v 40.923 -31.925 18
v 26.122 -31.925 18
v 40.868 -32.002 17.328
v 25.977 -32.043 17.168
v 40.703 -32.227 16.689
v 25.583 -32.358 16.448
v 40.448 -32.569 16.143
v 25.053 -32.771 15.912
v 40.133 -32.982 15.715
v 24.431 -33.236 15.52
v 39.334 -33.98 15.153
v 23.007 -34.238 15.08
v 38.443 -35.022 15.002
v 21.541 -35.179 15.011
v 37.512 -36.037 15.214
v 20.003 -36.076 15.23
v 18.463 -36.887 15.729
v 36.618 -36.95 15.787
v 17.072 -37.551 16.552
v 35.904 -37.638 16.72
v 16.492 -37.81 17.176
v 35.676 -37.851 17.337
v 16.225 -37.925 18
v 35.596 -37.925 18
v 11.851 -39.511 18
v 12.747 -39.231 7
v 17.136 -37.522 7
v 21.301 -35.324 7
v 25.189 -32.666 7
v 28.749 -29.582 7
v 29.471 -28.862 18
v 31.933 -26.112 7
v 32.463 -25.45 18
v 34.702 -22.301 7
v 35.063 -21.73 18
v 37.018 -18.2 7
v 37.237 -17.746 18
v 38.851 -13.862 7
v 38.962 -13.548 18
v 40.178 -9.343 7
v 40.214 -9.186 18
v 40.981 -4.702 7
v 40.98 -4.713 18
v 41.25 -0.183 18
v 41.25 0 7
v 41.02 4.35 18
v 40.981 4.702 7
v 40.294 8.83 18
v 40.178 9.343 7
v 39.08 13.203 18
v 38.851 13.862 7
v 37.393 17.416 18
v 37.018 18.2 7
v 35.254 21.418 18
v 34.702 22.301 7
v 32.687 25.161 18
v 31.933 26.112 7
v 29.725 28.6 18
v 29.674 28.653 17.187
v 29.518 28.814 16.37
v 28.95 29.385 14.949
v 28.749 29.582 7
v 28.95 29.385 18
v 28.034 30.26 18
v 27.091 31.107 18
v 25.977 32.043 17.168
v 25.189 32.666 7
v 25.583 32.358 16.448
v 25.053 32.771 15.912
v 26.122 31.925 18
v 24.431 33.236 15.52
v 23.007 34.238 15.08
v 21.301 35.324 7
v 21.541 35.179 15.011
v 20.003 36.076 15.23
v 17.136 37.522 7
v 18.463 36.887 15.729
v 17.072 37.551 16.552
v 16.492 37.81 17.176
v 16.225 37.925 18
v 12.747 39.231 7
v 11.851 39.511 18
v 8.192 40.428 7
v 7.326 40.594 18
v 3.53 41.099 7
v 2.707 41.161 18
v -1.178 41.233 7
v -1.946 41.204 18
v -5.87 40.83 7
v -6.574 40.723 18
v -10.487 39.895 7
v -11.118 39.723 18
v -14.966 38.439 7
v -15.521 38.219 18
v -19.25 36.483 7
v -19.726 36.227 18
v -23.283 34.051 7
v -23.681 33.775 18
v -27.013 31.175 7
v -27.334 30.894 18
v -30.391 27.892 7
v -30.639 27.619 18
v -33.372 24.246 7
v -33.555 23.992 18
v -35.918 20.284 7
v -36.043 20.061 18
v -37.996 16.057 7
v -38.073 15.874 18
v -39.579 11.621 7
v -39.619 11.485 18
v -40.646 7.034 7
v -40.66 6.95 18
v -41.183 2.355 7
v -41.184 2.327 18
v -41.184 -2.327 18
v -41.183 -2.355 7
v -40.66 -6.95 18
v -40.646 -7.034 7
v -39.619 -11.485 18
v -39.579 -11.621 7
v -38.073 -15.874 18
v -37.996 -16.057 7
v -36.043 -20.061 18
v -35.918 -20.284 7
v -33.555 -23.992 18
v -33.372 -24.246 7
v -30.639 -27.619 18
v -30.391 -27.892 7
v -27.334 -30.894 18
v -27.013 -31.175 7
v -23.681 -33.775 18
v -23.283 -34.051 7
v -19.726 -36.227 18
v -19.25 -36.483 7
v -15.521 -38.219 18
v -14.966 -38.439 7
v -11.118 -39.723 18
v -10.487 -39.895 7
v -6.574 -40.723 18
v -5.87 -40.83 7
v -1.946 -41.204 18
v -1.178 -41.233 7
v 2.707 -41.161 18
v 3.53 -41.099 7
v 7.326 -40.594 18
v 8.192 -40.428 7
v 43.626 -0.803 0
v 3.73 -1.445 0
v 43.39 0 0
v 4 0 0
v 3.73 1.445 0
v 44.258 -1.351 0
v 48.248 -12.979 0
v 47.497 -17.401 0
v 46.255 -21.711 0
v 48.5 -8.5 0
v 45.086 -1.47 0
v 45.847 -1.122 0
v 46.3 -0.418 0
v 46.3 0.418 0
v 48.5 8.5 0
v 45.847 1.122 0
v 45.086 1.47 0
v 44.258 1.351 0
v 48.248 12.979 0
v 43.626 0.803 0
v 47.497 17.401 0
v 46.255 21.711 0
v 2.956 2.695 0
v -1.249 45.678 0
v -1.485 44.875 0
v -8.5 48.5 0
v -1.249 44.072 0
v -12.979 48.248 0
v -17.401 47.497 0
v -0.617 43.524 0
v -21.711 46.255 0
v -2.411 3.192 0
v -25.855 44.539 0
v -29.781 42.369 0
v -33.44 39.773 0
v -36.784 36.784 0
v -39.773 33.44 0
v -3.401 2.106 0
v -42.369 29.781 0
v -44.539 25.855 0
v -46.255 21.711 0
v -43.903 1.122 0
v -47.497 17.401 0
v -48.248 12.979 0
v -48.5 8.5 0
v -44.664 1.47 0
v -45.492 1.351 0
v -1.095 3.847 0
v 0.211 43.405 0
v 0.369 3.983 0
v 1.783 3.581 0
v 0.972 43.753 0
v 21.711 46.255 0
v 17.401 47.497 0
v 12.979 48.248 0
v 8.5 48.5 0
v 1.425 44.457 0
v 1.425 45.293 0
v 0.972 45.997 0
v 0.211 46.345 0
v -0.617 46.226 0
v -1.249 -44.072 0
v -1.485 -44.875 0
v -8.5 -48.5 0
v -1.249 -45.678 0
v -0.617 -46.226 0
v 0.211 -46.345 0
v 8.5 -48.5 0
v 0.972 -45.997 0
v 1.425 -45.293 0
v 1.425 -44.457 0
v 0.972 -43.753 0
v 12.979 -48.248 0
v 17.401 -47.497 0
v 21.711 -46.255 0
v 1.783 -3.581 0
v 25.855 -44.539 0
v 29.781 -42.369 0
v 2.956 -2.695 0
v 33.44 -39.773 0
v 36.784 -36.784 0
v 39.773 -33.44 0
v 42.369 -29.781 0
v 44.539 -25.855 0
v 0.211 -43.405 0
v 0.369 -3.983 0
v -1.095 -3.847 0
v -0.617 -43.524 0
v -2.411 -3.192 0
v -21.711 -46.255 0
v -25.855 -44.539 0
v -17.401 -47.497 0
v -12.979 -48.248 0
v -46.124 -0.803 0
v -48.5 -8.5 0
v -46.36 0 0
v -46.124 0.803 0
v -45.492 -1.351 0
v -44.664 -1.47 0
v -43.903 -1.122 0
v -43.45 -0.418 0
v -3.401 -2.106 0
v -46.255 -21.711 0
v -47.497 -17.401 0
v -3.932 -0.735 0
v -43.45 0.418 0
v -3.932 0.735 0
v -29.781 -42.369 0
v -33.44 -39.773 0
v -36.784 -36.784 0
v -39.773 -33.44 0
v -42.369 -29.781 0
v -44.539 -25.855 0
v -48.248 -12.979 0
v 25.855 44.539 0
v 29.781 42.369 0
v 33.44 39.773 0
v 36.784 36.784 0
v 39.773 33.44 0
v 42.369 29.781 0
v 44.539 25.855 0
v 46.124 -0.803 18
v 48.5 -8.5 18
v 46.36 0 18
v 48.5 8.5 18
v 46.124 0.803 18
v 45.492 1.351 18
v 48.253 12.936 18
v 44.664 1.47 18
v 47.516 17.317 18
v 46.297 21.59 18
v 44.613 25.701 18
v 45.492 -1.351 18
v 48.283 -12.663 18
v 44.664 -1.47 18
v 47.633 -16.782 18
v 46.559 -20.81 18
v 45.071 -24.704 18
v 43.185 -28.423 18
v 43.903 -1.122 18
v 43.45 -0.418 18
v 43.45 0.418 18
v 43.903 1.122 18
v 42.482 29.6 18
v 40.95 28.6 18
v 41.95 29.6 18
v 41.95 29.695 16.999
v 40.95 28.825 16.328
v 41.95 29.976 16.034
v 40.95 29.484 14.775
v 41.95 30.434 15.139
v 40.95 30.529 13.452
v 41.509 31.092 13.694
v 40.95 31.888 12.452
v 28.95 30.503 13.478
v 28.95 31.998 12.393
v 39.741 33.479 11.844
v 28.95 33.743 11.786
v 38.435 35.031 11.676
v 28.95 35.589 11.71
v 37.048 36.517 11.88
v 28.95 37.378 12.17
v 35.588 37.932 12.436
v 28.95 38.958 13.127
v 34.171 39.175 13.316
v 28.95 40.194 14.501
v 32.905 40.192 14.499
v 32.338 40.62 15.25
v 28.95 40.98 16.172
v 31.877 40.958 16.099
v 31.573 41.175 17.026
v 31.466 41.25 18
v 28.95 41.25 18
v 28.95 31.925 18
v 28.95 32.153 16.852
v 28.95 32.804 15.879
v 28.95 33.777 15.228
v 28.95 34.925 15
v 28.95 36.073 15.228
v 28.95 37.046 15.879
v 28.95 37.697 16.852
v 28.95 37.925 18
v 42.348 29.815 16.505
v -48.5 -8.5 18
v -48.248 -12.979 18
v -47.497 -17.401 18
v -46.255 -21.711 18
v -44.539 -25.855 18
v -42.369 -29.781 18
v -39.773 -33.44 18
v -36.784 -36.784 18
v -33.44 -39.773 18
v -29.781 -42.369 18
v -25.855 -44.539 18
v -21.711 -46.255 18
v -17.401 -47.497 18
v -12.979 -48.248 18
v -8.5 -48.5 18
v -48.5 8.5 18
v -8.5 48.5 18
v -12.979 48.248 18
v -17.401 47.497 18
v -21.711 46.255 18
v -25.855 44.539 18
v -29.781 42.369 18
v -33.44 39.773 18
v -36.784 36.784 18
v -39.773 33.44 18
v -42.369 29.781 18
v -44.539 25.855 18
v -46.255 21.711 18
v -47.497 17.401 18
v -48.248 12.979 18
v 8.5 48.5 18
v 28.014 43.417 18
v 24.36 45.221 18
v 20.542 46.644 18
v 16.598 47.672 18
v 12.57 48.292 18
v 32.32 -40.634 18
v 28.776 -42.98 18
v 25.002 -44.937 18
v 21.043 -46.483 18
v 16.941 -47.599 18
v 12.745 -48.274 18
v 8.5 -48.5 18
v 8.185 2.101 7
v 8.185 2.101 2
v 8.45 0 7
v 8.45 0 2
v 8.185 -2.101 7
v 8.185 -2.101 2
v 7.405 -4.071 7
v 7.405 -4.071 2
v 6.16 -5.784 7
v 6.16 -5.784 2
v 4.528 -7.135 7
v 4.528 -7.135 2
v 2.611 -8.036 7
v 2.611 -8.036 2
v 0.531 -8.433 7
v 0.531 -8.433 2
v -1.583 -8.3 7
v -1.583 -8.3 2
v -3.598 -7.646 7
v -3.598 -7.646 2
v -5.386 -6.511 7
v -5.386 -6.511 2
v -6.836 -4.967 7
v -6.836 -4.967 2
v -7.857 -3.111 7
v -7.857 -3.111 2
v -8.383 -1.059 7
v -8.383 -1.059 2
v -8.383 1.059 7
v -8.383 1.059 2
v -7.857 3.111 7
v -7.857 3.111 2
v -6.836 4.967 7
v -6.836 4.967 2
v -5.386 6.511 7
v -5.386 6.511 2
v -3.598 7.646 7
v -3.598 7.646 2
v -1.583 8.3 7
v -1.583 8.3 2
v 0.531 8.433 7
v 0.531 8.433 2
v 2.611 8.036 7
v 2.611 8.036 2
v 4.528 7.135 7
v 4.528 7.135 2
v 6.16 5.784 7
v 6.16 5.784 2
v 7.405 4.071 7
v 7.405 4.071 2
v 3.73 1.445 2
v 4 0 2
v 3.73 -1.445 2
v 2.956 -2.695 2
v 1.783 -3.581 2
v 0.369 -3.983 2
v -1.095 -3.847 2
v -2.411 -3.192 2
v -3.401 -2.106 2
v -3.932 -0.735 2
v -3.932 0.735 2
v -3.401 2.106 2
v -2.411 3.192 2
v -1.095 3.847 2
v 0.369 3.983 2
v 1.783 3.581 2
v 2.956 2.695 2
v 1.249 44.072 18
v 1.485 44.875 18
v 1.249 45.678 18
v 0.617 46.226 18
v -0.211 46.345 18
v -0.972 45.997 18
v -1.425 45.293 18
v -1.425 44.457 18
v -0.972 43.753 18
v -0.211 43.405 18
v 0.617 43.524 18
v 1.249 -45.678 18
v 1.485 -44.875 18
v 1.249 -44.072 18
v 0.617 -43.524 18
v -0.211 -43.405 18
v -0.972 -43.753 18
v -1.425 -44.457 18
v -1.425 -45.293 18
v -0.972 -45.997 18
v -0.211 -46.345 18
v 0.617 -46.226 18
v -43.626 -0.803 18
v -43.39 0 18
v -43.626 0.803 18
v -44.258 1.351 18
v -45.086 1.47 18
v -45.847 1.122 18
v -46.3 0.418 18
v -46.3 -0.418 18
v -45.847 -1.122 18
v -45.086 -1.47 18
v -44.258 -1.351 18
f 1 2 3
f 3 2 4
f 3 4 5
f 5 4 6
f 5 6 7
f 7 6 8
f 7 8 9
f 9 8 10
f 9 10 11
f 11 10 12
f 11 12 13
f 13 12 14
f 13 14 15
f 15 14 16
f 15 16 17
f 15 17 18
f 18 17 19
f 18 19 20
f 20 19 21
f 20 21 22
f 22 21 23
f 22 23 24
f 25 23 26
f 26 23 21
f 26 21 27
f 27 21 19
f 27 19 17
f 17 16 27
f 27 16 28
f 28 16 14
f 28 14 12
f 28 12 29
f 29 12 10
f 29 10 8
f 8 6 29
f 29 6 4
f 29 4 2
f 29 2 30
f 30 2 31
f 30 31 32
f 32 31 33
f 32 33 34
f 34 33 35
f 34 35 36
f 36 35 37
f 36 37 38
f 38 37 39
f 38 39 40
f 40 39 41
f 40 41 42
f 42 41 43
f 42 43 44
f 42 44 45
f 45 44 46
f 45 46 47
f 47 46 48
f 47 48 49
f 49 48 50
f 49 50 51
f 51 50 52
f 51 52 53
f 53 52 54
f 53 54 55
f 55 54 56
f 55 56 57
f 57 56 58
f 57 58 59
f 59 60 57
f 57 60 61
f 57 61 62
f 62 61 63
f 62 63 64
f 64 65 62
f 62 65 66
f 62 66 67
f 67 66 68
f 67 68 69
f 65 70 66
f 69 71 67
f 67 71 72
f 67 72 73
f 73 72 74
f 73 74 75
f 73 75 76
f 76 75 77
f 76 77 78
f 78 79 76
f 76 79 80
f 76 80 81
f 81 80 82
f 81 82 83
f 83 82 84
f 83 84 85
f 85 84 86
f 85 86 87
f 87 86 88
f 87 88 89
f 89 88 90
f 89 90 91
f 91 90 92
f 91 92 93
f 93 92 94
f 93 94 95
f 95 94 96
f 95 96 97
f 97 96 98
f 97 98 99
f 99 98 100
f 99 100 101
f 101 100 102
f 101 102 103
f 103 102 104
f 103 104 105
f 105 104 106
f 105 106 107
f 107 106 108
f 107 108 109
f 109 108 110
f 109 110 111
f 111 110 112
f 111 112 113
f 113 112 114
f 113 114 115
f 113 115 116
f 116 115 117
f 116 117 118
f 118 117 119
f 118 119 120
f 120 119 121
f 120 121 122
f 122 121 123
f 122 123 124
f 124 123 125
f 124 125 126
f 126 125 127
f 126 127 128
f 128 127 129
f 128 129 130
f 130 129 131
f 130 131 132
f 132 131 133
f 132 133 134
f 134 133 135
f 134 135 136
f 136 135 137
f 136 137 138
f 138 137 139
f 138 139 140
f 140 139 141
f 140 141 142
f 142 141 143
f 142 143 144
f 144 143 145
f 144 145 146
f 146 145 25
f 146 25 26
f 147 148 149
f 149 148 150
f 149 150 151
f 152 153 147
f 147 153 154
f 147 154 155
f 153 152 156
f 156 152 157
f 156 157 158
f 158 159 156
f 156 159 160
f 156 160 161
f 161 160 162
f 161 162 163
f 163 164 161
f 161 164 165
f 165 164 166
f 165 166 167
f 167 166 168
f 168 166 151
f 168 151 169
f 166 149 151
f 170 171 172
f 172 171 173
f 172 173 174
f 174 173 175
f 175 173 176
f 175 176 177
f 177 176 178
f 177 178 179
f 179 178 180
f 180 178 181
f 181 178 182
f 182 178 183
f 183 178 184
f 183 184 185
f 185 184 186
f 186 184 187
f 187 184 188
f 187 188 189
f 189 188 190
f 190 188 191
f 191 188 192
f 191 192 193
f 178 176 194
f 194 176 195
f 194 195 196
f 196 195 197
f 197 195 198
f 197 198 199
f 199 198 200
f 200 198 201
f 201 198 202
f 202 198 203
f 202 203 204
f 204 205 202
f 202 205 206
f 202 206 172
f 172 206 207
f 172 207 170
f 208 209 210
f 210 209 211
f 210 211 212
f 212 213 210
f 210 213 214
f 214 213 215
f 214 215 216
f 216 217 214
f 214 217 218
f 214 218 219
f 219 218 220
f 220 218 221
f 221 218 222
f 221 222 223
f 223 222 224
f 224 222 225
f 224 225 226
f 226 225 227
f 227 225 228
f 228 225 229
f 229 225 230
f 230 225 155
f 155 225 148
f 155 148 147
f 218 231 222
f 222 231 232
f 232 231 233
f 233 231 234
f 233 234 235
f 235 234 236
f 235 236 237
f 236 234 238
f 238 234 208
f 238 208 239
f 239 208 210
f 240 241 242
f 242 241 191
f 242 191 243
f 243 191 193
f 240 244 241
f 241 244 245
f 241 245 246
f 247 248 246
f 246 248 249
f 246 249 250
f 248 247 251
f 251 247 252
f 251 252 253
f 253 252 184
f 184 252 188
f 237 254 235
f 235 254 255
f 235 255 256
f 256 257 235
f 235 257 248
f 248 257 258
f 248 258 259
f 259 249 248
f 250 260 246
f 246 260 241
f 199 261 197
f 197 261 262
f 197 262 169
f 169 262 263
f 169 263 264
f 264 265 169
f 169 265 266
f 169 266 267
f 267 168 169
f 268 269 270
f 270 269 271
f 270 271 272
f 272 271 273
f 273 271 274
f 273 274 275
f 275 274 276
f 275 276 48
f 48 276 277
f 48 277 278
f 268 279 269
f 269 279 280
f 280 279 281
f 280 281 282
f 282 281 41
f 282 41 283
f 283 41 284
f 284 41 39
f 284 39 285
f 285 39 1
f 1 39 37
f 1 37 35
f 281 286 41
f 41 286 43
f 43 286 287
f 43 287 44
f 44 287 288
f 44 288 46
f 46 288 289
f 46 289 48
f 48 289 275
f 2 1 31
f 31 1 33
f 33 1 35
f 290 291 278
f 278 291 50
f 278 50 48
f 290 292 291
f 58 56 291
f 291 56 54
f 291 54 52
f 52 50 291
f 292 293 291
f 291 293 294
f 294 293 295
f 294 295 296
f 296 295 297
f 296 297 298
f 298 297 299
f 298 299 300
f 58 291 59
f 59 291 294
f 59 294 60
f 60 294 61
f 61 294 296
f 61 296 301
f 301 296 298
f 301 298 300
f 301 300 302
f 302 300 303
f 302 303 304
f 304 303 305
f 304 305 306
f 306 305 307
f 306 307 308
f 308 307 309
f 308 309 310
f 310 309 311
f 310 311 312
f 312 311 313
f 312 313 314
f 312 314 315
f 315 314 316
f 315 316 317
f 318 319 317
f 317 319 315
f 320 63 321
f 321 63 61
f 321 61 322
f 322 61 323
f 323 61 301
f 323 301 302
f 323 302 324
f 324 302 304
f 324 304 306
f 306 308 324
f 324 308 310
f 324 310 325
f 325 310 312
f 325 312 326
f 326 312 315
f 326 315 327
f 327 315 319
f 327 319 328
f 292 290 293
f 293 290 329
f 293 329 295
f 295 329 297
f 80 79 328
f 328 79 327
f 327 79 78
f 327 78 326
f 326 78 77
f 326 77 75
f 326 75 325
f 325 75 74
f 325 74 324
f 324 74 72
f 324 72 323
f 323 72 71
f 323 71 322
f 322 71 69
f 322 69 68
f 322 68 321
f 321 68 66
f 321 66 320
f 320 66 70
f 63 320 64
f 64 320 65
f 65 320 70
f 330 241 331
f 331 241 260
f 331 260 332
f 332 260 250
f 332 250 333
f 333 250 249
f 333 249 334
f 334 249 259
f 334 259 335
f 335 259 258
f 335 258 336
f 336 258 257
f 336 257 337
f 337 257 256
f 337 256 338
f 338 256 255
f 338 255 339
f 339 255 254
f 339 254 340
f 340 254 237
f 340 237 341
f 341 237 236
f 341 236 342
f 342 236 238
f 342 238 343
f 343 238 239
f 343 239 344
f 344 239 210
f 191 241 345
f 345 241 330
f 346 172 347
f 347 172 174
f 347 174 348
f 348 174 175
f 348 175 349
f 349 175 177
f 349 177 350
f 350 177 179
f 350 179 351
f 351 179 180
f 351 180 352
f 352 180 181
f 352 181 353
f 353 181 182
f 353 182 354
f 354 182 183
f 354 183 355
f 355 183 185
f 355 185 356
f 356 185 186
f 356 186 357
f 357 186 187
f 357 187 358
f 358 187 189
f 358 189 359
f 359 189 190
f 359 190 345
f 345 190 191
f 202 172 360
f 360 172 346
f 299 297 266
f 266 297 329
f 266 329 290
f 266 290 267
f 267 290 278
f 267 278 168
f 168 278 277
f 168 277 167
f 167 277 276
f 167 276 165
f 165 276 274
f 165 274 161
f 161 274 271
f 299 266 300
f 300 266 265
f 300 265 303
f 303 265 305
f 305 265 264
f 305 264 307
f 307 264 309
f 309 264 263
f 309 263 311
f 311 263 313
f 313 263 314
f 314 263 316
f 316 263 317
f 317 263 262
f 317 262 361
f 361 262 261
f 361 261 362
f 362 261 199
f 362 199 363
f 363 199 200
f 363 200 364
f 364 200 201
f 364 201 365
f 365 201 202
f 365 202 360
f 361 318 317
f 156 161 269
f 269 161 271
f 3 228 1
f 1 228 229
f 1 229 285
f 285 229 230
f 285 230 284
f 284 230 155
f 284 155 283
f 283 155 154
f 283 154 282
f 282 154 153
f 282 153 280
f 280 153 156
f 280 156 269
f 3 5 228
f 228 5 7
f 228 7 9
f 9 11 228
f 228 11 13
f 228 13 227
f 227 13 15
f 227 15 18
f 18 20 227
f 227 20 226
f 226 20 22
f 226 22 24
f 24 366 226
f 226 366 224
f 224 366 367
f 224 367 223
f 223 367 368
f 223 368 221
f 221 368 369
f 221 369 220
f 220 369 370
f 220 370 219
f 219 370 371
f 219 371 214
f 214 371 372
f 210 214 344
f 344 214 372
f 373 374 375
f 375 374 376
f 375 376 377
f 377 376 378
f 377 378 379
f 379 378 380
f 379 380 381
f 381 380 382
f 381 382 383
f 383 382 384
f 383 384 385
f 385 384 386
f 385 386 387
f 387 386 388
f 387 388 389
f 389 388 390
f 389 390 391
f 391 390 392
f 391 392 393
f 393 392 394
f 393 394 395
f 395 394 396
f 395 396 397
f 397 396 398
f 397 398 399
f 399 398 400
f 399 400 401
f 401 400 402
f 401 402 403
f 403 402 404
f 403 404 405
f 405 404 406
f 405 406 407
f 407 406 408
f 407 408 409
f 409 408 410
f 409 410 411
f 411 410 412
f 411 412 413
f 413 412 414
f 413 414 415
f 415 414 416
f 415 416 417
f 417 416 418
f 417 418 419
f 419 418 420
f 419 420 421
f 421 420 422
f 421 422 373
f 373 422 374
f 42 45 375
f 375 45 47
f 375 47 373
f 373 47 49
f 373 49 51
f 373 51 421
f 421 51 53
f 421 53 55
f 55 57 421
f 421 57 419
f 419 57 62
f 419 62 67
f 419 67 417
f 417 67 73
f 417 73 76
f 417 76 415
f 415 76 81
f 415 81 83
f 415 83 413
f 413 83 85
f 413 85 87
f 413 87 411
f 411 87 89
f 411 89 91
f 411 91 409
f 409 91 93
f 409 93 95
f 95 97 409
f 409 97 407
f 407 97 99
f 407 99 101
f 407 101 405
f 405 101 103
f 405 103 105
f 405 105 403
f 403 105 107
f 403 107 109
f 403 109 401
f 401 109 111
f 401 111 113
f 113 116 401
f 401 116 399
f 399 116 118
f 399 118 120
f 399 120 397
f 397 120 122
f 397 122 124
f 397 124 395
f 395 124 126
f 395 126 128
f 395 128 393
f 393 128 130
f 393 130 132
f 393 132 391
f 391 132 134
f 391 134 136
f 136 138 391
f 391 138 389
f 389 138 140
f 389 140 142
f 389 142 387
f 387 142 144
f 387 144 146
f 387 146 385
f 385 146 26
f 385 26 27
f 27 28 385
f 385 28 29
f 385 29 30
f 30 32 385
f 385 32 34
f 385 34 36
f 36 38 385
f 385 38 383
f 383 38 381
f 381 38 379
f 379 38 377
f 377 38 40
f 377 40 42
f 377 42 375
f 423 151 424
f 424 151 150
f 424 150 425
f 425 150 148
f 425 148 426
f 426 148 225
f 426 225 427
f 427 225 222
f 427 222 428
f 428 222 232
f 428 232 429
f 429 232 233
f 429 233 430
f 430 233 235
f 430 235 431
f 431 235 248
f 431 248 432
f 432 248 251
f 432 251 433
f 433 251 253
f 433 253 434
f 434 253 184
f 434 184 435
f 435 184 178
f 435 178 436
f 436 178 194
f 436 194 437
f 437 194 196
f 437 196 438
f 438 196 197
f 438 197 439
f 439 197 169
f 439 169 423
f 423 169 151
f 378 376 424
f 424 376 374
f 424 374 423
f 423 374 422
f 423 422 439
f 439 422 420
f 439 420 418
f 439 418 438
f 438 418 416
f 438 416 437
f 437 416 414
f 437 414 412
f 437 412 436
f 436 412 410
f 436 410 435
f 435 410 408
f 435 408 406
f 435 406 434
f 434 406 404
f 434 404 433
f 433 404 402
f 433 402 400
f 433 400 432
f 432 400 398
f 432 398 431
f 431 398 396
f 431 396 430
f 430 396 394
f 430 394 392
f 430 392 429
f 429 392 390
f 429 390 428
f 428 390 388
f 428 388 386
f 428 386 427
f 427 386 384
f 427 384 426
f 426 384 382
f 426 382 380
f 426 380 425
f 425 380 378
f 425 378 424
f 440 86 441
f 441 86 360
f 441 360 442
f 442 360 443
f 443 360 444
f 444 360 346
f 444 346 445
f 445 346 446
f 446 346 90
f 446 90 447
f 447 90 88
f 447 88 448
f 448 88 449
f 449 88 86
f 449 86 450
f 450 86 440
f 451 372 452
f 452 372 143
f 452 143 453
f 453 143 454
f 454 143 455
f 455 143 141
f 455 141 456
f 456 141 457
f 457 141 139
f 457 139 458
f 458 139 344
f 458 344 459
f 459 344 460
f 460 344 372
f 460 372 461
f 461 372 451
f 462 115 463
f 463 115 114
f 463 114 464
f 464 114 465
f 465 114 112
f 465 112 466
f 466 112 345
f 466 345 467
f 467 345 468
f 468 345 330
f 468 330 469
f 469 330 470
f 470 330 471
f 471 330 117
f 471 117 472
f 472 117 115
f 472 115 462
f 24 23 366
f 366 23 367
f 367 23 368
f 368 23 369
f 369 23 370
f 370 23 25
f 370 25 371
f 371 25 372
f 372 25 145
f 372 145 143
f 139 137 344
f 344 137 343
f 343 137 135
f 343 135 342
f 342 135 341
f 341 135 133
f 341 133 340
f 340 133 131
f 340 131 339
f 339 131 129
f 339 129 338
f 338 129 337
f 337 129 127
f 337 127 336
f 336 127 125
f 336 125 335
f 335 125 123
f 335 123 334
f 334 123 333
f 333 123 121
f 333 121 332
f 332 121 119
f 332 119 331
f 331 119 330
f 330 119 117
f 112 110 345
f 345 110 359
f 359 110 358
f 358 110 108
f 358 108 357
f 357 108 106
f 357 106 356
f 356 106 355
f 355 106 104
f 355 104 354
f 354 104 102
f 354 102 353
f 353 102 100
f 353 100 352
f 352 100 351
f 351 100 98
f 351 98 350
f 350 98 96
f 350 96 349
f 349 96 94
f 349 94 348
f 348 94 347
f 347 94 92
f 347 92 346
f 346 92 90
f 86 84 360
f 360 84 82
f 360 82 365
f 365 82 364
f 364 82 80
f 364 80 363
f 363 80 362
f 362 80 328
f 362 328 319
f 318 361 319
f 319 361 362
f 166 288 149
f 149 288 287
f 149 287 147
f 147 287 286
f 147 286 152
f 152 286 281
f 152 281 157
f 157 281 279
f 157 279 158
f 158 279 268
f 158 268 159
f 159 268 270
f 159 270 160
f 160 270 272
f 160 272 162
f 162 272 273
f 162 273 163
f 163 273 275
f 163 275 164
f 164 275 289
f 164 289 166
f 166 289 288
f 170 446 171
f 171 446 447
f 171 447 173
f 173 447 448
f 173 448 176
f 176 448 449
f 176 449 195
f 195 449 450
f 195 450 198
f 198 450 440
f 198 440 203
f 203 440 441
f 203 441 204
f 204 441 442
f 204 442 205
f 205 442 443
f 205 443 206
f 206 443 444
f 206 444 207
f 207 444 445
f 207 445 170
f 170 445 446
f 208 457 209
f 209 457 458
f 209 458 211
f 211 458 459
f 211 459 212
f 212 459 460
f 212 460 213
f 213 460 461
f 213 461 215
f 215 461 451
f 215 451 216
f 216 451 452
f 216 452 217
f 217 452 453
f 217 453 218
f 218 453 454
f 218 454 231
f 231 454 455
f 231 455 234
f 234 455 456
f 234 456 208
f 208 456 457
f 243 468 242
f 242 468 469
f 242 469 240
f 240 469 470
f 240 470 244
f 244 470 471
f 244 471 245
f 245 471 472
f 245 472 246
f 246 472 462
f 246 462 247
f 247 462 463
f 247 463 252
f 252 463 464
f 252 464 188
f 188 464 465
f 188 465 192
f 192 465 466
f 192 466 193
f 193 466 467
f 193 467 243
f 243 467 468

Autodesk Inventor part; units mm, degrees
ref_plane "YZ Plane" through (0, 0, 0) normal (1, 0, 0) x (0, 1, 0)
ref_plane "XZ Plane" through (0, 0, 0) normal (0, 1, 0) x (-1, 0, 0)
ref_plane "XY Plane" through (0, 0, 0) normal (0, 0, 1) x (1, 0, 0)
sketch "Sketch1" plane through (0, 0, 0) normal (0, 0, 1) x (1, 0, 0)
  line L0 (-8.5, 48.5) -> (8.5, 48.5)
  line L1 (48.5, 8.5) -> (48.5, -8.5)
  line L2 (8.5, -48.5) -> (-8.5, -48.5)
  line L3 (-48.5, -8.5) -> (-48.5, 8.5)
  circle A0 centre (0, 0) radius 41.25
  circle A1 centre (0, 0) radius 8.45
  circle A2 centre (0, 0) radius 4
  arc A3 (48.5, 8.5) -> (8.5, 48.5) centre (8.5, 8.5) ccw
  arc A4 (8.5, -48.5) -> (48.5, -8.5) centre (8.5, -8.5) ccw
  arc A5 (-48.5, -8.5) -> (-8.5, -48.5) centre (-8.5, -8.5) ccw
  arc A6 (-8.5, 48.5) -> (-48.5, 8.5) centre (-8.5, 8.5) ccw
  point P0 (-48.5, 48.5)
  point P1 (48.5, -48.5)
  point P2 (48.5, 48.5)
  point P3 (-48.5, -48.5)
  point P4 (0, 48.5)
  point P5 (48.5, 0)
  dimension "d0" = 97
  dimension "d1" = 82.5
  dimension "d2" = 16.9
  dimension "d3" = 8
  dimension "d10" = 40
extrude "Extrusion1" add sketch "Sketch1" along normal blind 2 contours A1
extrude "Extrusion2" add sketch "Sketch1" along normal blind 7 contours A0
extrude "Extrusion3" add sketch "Sketch1" along normal blind 18 contours L0 A3 L1 A4 L2 A5 L3 A6
sketch "Sketch3" plane through (0, 0, 18) normal (0, 0, 1) x (1, 0, 0)
  circle A0 centre (0, 0) radius 41.25
  line L0 (21.9501, 34.925) -> (64.9501, 34.925)
  line L1 (41.9501, 40.25) -> (47.9501, 40.25)
  line L2 (49.9501, 42.25) -> (64.9501, 42.25)
  line L3 (40.9501, 41.25) -> (28.9501, 41.25)
  line L4 (49.9501, 42.25) -> (47.9501, 40.25)
  line L5 (40.9501, 41.25) -> (41.9501, 40.25)
  line L6 (47.9501, 40.25) -> (64.9501, 40.25) construction
  line L7 (41.9501, 40.25) -> (28.9501, 40.25) construction
  line L8 (64.9501, 42.25) -> (64.9501, 34.925)
  line L9 (28.9501, 37.925) -> (21.9501, 37.925)
  line L10 (28.9501, 37.925) -> (28.9501, 41.25)
  line L11 (21.9501, 37.925) -> (21.9501, 34.925) construction
  line L12 (21.9501, 34.925) -> (16.225193, 34.925)
  line L13 (21.9501, 37.925) -> (16.225193, 37.925)
  line L14 (16.225193, 34.925) -> (16.225193, 37.925)
  circle A1 centre (0, 0) radius 4
  line L15 (0, 0) -> (48.5, 0)
  line L16 (48.5, -8.5) -> (48.5, 8.5)
  line L17 (21.9501, -34.925) -> (64.9501, -34.925)
  line L18 (41.9501, -40.25) -> (47.9501, -40.25)
  line L19 (49.9501, -42.25) -> (64.9501, -42.25)
  line L20 (40.9501, -41.25) -> (28.9501, -41.25)
  line L21 (49.9501, -42.25) -> (47.9501, -40.25)
  line L22 (40.9501, -41.25) -> (41.9501, -40.25)
  line L23 (47.9501, -40.25) -> (64.9501, -40.25) construction
  line L24 (41.9501, -40.25) -> (28.9501, -40.25) construction
  line L25 (64.9501, -42.25) -> (64.9501, -34.925)
  line L26 (28.9501, -37.925) -> (21.9501, -37.925)
  line L27 (28.9501, -37.925) -> (28.9501, -41.25)
  line L28 (21.9501, -37.925) -> (21.9501, -34.925) construction
  line L29 (21.9501, -34.925) -> (16.225193, -34.925)
  line L30 (21.9501, -37.925) -> (16.225193, -37.925)
  line L31 (16.225193, -34.925) -> (16.225193, -37.925)
  line L32 (28.9501, -37.925) -> (64.9501, -37.925)
  point P0 (16.225193, -37.925)
  dimension "d12" = 10.65
  dimension "d13" = 14.65
  dimension "d14" = 12.65
  dimension "d15" = 45
  dimension "d16" = 45
  dimension "d17" = 15
  dimension "d18" = 6
  dimension "d19" = 12
  dimension "d21" = 7
  dimension "d22" = 6
sketch "Sketch3 outline for Revolution1" plane through (0, 0, 18) normal (0, 0, 1) x (1, 0, 0)
  line L0 (64.9501, 34.925) -> (64.9501, 42.25)
  line L1 (21.9501, 34.925) -> (64.9501, 34.925)
  arc A0 (16.225193, 37.925) -> (21.9501, 34.925) centre (0, 0) cw
  line L2 (21.9501, 37.925) -> (16.225193, 37.925)
  line L3 (28.9501, 37.925) -> (21.9501, 37.925)
  line L4 (28.9501, 41.25) -> (28.9501, 37.925)
  line L5 (40.9501, 41.25) -> (28.9501, 41.25)
  line L6 (41.9501, 40.25) -> (40.9501, 41.25)
  line L7 (47.9501, 40.25) -> (41.9501, 40.25)
  line L8 (49.9501, 42.25) -> (47.9501, 40.25)
  line L9 (64.9501, 42.25) -> (49.9501, 42.25)
revolve "Revolution1" cut sketch "Sketch3 outline for Revolution1" angle 360 about axis through (21.9501, 34.925, 18) along (1, 0, 0)
sketch "Sketch3 outline for Revolution2" plane through (0, 0, 18) normal (0, 0, 1) x (1, 0, 0)
  line L0 (21.9501, -37.925) -> (28.9501, -37.925)
  line L1 (16.225193, -37.925) -> (21.9501, -37.925)
  arc A0 (21.9501, -34.925) -> (16.225193, -37.925) centre (0, 0) cw
  line L2 (64.9501, -34.925) -> (21.9501, -34.925)
  line L3 (64.9501, -37.925) -> (64.9501, -34.925)
  line L4 (28.9501, -37.925) -> (64.9501, -37.925)
revolve "Revolution2" cut sketch "Sketch3 outline for Revolution2" angle 360 about axis through (21.9501, -34.925, 18) along (1, 0, 0)
sketch "Sketch4" plane through (0, 0, 18) normal (0, 0, 1) x (1, 0, 0)
  line L0 (35.59556, -37.925) -> (16.225193, -37.925) construction
  arc A0 (16.225193, 37.925) -> (16.225193, -37.925) centre (0, 0) ccw construction
  line L1 (16.225193, 37.925) -> (28.9501, 37.925) construction
  line L2 (28.9501, 37.925) -> (28.9501, 41.25) construction
  line L3 (28.9501, 41.25) -> (31.466007, 41.25) construction
  arc A1 (31.466007, 41.25) -> (8.5, 48.5) centre (8.5, 8.5) ccw construction
  line L4 (8.5, 48.5) -> (-8.5, 48.5) construction
  arc A2 (-8.5, 48.5) -> (-48.5, 8.5) centre (-8.5, 8.5) ccw construction
  line L5 (-48.5, 8.5) -> (-48.5, -8.5) construction
  arc A3 (-48.5, -8.5) -> (-8.5, -48.5) centre (-8.5, -8.5) ccw construction
  line L6 (-8.5, -48.5) -> (8.5, -48.5) construction
  arc A4 (8.5, -48.5) -> (35.59556, -37.925) centre (8.5, -8.5) ccw construction
  line L7 (26.121962, -31.925) -> (40.923284, -31.925) construction
  arc A5 (40.923284, -31.925) -> (48.5, -8.5) centre (8.5, -8.5) ccw construction
  line L8 (48.5, -8.5) -> (48.5, 8.5) construction
  arc A6 (48.5, 8.5) -> (42.482201, 29.6) centre (8.5, 8.5) ccw construction
  line L9 (42.482201, 29.6) -> (41.9501, 29.6) construction
  line L10 (41.9501, 29.6) -> (40.9501, 28.6) construction
  line L11 (40.9501, 28.6) -> (29.725452, 28.6) construction
  arc A7 (26.121962, -31.925) -> (29.725452, 28.6) centre (0, 0) ccw construction
  line L12 (-48.5, 0) -> (-41.25, 0) construction
  circle A8 centre (-44.875, 0) radius 1.485
  circle A9 centre (0, -44.875) radius 1.485
  circle A10 centre (44.875, 0) radius 1.485
  circle A11 centre (0, 44.875) radius 1.485
  dimension "d25" = 2.97
  dimension "d28" = 360
extrude "Extrusion4" cut sketch "Sketch4" against normal through all
properties part number "Case"
